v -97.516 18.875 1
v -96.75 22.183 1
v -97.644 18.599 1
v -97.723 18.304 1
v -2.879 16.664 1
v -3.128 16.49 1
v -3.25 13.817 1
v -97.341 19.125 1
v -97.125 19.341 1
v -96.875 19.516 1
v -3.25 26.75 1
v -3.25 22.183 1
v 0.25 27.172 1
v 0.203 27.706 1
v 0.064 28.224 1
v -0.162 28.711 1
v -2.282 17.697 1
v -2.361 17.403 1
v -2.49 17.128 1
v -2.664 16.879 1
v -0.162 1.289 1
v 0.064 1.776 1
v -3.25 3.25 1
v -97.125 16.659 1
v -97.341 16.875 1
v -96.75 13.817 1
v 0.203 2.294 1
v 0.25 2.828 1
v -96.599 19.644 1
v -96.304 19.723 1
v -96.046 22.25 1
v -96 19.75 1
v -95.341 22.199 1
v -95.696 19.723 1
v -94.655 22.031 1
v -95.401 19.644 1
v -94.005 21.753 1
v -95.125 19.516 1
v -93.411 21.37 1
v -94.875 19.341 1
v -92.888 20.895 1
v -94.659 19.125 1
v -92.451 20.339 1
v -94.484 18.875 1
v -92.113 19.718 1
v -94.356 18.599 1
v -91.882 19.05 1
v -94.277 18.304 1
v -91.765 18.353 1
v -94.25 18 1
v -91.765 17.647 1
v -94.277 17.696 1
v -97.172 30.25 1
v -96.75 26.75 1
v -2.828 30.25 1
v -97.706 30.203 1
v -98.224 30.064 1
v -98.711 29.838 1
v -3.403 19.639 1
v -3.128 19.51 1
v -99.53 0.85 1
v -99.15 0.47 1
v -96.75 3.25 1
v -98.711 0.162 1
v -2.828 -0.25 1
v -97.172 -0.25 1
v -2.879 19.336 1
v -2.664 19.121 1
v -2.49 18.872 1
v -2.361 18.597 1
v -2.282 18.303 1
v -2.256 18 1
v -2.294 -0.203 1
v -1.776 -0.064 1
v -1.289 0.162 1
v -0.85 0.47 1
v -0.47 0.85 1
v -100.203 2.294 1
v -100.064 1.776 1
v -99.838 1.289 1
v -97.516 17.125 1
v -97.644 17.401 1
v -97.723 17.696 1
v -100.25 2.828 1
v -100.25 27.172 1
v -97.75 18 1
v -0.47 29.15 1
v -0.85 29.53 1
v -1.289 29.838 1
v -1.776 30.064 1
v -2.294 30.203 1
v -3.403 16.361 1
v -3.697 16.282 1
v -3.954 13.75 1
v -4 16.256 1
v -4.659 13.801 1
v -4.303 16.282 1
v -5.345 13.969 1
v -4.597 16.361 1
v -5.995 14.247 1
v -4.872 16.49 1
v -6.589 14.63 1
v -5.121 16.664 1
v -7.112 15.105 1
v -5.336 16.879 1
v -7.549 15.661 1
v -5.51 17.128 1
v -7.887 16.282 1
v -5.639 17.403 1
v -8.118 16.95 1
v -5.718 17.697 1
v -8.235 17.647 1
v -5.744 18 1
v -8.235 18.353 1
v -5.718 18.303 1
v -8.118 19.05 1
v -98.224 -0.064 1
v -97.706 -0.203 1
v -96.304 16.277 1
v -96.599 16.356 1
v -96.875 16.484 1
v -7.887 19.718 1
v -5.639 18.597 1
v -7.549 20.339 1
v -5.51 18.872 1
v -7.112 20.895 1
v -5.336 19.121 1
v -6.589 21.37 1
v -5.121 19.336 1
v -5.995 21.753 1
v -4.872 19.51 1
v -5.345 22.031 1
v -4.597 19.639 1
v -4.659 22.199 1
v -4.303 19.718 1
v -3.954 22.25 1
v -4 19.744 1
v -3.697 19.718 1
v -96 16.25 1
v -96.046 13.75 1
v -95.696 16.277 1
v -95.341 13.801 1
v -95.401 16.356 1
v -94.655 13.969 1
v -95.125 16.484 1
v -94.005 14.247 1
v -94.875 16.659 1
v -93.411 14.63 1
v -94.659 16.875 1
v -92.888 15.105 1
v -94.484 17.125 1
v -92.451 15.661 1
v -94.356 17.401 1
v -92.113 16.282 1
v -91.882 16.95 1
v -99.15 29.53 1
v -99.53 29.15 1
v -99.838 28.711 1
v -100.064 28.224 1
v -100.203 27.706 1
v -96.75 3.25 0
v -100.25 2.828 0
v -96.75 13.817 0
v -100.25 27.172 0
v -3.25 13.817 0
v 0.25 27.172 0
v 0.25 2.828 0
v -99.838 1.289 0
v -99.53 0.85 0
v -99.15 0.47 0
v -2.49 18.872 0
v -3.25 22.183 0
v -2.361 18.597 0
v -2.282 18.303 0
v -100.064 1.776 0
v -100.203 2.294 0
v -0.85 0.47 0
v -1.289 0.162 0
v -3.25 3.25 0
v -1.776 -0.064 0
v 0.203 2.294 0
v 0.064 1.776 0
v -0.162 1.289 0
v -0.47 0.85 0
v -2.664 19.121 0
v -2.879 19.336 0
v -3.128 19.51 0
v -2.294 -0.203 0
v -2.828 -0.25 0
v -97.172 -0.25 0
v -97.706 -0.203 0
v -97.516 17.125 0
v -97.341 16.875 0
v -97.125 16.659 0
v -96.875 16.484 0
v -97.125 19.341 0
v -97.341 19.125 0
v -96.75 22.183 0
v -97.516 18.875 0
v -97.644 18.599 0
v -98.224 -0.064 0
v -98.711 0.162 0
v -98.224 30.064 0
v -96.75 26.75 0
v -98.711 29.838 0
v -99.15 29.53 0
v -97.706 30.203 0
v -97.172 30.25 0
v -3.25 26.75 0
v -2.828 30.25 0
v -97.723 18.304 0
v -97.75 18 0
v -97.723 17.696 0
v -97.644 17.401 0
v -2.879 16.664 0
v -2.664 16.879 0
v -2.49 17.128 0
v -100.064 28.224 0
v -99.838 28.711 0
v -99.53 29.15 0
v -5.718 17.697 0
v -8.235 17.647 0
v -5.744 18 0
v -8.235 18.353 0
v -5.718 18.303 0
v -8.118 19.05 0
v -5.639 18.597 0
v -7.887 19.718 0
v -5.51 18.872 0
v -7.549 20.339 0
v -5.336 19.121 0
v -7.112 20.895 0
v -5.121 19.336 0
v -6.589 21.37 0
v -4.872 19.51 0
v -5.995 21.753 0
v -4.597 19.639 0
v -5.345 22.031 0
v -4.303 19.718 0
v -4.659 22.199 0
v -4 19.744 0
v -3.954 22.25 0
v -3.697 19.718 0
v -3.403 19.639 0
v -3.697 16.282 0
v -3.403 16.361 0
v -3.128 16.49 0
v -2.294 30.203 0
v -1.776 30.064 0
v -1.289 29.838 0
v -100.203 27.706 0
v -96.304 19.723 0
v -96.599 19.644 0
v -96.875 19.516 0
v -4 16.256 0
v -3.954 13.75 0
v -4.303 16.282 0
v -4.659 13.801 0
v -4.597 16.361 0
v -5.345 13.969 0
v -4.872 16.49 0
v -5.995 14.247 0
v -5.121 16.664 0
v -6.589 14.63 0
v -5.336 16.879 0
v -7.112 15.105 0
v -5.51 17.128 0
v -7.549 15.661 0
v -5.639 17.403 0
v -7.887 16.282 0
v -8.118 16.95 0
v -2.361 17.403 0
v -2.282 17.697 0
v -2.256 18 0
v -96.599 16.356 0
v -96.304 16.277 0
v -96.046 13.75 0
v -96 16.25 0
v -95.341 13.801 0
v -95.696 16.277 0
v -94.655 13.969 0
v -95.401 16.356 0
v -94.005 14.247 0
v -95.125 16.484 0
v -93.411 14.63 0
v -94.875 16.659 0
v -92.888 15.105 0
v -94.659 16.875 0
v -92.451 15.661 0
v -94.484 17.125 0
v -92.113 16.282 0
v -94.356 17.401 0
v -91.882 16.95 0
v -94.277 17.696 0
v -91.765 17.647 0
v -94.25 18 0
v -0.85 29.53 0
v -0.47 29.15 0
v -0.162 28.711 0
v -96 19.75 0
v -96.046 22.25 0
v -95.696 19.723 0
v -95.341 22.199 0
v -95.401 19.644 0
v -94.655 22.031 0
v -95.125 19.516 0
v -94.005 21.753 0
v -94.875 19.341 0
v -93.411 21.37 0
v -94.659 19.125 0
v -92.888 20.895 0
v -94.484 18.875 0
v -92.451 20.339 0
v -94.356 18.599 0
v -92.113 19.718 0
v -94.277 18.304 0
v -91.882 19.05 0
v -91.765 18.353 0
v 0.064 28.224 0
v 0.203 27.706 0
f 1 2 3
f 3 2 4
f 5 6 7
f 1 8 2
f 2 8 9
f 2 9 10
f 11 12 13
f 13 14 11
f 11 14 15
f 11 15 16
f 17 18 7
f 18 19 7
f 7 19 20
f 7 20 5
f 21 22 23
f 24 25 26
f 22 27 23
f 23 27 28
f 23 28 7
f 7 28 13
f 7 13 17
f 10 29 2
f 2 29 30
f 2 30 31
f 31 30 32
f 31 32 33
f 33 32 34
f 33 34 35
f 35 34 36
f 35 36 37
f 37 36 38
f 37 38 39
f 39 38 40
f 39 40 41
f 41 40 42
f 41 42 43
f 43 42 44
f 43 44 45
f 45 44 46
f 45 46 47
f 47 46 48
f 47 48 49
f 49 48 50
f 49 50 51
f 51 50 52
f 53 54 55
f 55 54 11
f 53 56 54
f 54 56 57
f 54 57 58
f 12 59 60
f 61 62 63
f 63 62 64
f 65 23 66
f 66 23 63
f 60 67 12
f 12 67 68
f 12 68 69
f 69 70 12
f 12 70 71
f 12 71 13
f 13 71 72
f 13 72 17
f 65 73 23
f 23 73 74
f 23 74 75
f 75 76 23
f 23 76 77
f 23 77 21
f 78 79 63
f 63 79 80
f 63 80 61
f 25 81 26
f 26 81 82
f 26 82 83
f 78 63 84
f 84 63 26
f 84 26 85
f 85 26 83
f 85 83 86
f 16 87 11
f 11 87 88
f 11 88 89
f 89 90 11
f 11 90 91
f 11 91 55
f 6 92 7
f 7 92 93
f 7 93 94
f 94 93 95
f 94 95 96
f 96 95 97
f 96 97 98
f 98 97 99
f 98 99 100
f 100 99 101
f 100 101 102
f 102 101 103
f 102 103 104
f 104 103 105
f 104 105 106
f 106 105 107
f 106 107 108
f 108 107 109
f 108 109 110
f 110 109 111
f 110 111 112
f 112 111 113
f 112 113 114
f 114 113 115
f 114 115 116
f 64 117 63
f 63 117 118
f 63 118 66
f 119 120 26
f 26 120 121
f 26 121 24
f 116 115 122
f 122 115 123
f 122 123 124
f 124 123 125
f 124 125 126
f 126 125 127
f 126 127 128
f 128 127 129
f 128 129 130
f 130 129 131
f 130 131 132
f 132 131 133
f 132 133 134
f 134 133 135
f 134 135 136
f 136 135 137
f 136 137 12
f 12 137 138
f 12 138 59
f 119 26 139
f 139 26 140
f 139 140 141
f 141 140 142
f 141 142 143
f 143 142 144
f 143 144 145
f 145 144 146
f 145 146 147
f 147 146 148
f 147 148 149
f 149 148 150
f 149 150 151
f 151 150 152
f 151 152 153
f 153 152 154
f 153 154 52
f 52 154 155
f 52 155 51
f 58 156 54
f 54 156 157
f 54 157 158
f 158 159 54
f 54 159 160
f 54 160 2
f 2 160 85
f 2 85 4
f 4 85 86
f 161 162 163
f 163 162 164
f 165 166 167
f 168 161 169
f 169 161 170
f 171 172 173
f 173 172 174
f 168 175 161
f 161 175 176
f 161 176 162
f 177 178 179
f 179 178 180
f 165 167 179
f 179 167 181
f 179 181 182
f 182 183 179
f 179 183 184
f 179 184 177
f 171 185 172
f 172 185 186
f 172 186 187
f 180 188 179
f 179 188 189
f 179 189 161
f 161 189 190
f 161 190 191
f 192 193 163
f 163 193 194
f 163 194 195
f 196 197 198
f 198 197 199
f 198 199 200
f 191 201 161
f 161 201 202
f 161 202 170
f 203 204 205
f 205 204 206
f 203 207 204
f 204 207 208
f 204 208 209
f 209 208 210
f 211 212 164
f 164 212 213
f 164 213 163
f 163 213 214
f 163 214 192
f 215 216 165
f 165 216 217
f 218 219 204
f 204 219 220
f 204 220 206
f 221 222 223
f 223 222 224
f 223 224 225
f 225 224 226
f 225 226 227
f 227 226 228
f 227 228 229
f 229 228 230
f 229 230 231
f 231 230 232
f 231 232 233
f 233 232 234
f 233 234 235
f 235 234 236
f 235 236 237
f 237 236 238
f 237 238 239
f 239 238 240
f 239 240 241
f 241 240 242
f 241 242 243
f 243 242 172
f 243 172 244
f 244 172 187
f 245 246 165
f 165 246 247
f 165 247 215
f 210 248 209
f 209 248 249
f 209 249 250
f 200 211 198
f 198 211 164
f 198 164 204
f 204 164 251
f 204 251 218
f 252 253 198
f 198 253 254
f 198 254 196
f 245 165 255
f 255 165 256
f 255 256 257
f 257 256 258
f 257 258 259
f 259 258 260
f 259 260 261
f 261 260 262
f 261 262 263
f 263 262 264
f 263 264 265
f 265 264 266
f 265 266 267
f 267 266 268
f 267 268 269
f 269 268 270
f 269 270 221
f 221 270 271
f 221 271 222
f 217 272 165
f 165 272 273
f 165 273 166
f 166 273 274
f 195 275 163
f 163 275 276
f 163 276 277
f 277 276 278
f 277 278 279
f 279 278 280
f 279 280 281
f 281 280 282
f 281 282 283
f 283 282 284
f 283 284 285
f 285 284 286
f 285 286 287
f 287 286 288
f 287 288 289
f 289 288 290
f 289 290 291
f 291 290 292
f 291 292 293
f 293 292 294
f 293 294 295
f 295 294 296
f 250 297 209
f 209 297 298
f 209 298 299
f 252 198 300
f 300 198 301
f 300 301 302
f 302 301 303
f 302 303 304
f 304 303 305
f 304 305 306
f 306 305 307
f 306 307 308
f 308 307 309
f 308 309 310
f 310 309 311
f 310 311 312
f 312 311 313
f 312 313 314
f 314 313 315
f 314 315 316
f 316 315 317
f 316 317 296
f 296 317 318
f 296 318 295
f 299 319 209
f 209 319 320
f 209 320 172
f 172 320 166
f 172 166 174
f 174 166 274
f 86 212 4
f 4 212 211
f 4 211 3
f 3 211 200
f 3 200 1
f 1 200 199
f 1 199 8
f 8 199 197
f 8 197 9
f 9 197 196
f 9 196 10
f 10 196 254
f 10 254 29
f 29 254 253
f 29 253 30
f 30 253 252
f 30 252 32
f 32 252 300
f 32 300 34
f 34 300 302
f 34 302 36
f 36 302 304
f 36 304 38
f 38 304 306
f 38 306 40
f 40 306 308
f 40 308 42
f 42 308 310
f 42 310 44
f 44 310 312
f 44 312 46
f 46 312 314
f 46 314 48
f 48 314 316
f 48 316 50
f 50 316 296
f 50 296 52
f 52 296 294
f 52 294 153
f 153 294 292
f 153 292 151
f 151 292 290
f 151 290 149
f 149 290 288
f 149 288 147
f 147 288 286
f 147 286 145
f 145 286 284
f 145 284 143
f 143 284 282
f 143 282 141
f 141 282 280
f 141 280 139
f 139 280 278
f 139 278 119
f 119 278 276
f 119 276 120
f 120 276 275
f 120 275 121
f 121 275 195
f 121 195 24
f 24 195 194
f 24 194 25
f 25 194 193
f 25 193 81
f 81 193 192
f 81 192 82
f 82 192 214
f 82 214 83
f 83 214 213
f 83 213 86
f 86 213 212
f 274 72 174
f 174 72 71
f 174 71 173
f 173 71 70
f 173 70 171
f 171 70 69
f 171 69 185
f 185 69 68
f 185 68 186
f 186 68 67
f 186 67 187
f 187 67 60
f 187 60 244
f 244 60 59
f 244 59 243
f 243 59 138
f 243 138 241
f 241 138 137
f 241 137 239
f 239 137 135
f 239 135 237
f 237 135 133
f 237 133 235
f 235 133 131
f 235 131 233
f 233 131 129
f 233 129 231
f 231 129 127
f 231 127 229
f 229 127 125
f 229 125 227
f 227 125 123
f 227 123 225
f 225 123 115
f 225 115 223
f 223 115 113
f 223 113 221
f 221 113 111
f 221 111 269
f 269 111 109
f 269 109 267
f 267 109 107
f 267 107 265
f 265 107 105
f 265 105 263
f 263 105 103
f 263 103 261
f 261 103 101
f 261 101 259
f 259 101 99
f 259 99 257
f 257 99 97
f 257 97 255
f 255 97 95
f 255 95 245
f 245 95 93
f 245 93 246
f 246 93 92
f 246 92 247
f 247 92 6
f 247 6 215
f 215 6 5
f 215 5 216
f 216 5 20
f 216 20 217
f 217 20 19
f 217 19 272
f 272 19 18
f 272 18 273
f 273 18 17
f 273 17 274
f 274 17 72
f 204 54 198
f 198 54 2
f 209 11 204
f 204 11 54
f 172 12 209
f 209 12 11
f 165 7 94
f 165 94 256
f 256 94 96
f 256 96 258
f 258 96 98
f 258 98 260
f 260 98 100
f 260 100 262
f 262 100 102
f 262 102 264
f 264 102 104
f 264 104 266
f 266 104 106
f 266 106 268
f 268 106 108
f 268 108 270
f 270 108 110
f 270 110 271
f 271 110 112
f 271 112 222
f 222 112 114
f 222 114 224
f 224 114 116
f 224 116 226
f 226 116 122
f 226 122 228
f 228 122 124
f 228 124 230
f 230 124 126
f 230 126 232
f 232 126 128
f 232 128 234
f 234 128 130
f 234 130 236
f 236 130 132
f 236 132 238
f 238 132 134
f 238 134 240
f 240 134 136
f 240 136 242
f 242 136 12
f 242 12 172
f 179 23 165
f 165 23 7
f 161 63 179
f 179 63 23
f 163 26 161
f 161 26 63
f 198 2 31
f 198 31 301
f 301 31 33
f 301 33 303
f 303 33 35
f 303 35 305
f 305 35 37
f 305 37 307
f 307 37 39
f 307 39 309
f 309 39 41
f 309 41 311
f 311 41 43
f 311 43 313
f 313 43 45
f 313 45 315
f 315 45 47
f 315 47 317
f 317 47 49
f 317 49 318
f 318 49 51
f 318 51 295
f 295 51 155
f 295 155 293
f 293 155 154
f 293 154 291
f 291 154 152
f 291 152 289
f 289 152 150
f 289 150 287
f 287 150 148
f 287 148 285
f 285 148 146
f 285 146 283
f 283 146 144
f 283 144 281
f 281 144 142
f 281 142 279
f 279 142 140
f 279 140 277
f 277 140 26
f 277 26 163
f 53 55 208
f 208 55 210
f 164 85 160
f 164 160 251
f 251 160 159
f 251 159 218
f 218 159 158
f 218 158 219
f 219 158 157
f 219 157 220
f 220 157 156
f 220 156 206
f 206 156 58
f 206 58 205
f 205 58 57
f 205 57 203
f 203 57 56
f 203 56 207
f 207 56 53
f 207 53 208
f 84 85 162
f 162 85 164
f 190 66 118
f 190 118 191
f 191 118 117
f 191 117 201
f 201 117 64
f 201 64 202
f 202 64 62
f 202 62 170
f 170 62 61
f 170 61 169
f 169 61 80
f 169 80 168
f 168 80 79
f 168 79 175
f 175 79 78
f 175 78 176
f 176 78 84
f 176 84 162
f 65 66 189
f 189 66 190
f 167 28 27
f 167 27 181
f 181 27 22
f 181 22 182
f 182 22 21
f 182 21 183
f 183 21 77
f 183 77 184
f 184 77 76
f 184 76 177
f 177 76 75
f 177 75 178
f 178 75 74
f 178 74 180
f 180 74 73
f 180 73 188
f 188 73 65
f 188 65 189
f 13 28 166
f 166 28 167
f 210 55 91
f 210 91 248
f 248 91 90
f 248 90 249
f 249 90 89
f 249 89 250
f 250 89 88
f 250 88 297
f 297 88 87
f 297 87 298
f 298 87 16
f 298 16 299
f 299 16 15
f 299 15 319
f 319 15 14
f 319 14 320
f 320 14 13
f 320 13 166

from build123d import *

# Parameters (mm, degrees)
SKETCH2_R           = 1.75
BOSS_EXTRUDE1_DEPTH = 1
BOSS_EXTRUDE3_START = -1
SKETCH4_R           = 1.75
SKETCH4_R_2         = 1.744098306
BOSS_EXTRUDE3_DEPTH = 1


with BuildPart() as part:
    # Sketch2 → Boss-Extrude1 (new body)
    with BuildSketch(Plane.XY):
        with BuildLine():
            Line((0, 3), (0, 27))
            ThreePointArc((0, 27), (-0.878679656, 29.121320344), (-3, 30))
            Line((-3, 30), (-97, 30))
            ThreePointArc((-97, 30), (-99.121320344, 29.121320344), (-100, 27))
            Line((-100, 27), (-100, 3))
            ThreePointArc((-100, 3), (-99.121320344, 0.878679656), (-97, 0))
            Line((-97, 0), (-3, 0))
            ThreePointArc((-3, 0), (-0.878679656, 0.878679656), (0, 3))
        make_face()
        with Locations((-96, 18)):
            Circle(SKETCH2_R, mode=Mode.SUBTRACT)
        with Locations((-4, 18)):
            Circle(SKETCH2_R, mode=Mode.SUBTRACT)
        with BuildLine():
            Line((-97, 27), (-3, 27))
            Line((-3, 27), (-3, 21.872983346))
            ThreePointArc((-3, 21.872983346), (-8, 18), (-3, 14.127016654))
            Line((-3, 14.127016654), (-3, 3))
            Line((-3, 3), (-97, 3))
            Line((-97, 3), (-97, 14.127016654))
            ThreePointArc((-97, 14.127016654), (-92, 18), (-97, 21.872983346))
            Line((-97, 21.872983346), (-97, 27))
        make_face(mode=Mode.SUBTRACT)
    extrude(amount=BOSS_EXTRUDE1_DEPTH)

    # Sketch4 → Boss-Extrude3 (add)
    with BuildSketch(Plane.XY.offset(1).offset(BOSS_EXTRUDE3_START)):
        with BuildLine():
            Line((-97.171540794, 30.25), (-2.828459206, 30.25))
            ThreePointArc((-2.828459206, 30.25), (-0.651659826, 29.348340174), (0.25, 27.171540794))
            Line((0.25, 27.171540794), (0.25, 2.828459206))
            ThreePointArc((0.25, 2.828459206), (-0.651659826, 0.651659826), (-2.828459206, -0.25))
            Line((-2.828459206, -0.25), (-97.171540794, -0.25))
            ThreePointArc((-97.171540794, -0.25), (-99.348340174, 0.651659826), (-100.25, 2.828459206))
            Line((-100.25, 2.828459206), (-100.25, 27.171540794))
            ThreePointArc((-100.25, 27.171540794), (-99.348340174, 29.348340174), (-97.171540794, 30.25))
        make_face()
        with Locations((-96, 18)):
            Circle(SKETCH4_R, mode=Mode.SUBTRACT)
        with Locations((-4, 18)):
            Circle(SKETCH4_R_2, mode=Mode.SUBTRACT)
        with BuildLine():
            Line((-96.75, 26.75), (-3.25, 26.75))
            Line((-3.25, 26.75), (-3.25, 22.183300133))
            ThreePointArc((-3.25, 22.183300133), (-8.25, 18), (-3.25, 13.816699867))
            Line((-3.25, 13.816699867), (-3.25, 3.25))
            Line((-3.25, 3.25), (-96.75, 3.25))
            Line((-96.75, 3.25), (-96.75, 13.816699867))
            ThreePointArc((-96.75, 13.816699867), (-91.75, 18), (-96.75, 22.183300133))
            Line((-96.75, 22.183300133), (-96.75, 26.75))
        make_face(mode=Mode.SUBTRACT)
    extrude(amount=BOSS_EXTRUDE3_DEPTH)


solid = part.part
